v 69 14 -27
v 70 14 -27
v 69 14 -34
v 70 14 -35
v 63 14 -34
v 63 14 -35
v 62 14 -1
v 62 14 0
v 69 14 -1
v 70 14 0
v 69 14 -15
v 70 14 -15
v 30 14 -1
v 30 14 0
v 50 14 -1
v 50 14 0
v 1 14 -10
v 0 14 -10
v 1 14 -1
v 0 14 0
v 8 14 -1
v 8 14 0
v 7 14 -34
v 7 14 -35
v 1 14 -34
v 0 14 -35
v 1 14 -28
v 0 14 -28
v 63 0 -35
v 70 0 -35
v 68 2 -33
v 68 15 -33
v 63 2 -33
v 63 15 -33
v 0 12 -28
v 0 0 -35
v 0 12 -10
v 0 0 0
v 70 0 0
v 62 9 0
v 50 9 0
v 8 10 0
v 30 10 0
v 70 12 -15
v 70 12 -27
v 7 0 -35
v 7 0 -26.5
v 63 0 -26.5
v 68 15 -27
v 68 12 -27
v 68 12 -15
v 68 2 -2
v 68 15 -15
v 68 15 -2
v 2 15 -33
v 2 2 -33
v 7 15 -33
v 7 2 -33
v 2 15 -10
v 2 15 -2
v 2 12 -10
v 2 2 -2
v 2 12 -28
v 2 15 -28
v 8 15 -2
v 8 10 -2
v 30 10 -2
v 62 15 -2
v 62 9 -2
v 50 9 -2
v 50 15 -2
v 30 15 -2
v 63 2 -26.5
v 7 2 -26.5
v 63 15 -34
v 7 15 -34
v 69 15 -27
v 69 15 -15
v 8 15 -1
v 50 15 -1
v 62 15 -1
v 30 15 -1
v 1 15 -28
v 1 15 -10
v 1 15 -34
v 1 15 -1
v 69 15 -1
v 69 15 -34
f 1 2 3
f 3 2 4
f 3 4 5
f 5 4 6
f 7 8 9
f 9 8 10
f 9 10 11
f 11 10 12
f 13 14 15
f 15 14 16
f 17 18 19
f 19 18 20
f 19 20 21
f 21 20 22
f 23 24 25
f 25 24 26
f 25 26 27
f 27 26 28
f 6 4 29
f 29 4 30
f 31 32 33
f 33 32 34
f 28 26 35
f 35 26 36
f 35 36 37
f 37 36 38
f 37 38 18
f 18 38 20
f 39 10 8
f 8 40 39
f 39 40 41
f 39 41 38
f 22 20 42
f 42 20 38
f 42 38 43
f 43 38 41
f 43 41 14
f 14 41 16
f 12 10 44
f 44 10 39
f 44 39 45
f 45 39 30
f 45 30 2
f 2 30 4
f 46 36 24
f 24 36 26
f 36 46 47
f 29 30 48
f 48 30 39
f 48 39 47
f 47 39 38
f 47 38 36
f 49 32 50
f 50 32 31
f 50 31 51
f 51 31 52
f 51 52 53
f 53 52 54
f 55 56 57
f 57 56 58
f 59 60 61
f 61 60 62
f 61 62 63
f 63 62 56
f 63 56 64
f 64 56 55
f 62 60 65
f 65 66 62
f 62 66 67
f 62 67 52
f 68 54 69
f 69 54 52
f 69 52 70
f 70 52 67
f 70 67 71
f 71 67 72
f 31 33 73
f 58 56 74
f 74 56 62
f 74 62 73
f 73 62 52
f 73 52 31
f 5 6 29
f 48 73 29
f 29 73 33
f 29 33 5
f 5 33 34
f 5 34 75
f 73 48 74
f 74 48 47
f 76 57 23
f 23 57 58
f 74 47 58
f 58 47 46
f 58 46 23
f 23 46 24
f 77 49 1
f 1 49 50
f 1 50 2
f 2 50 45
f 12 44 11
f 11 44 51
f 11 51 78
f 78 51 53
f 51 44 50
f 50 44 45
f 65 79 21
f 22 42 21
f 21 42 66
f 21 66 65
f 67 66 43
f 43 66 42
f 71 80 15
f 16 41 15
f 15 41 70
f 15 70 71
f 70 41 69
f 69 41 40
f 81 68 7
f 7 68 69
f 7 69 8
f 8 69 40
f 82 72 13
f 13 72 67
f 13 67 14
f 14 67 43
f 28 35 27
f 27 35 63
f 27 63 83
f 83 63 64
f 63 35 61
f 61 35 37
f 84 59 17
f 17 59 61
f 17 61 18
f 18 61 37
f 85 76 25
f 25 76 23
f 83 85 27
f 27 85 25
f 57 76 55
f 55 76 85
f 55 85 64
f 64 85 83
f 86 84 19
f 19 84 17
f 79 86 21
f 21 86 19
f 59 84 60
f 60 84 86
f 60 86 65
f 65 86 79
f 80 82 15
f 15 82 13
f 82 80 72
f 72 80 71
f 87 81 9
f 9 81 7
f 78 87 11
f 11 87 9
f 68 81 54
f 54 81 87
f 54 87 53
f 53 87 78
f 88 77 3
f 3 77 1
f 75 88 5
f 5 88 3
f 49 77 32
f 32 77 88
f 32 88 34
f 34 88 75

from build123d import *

# Parameters (mm, degrees)
SKETCH1_W               = 70
SKETCH1_H               = 35
BOSS_EXTRUDE1_DEPTH     = 2
SKETCH2_W               = 70
SKETCH2_H               = 35
SKETCH2_W_2             = 66
SKETCH2_H_2             = 31
BOSS_EXTRUDE2_DEPTH     = 12
SKETCH3_W               = 56
SKETCH3_H               = 8.5
CUT_EXTRUDE1_DEPTH      = 17
CUT_EXTRUDE1_DEPTH_BACK = 15
SKETCH4_W               = 12
SKETCH4_H               = 2
CUT_EXTRUDE2_DEPTH      = 17
SKETCH5_W               = 9
SKETCH5_H               = 4
SKETCH5_W_2             = 12
SKETCH5_H_2             = 5
CUT_EXTRUDE3_DEPTH      = 17
SKETCH6_W               = 18
SKETCH6_H               = 2
CUT_EXTRUDE4_DEPTH      = 17
SKETCH7_W               = 4
SKETCH7_H               = 1
SKETCH7_W_2             = 20
BOSS_EXTRUDE4_DEPTH     = 1
SKETCH8_W               = 4
SKETCH8_H               = 5
CUT_EXTRUDE5_DEPTH      = 3


with BuildPart() as part:
    # Sketch1 → Boss-Extrude1 (new body)
    with BuildSketch(Plane(origin=(0, 0, 0), x_dir=(1, 0, 0), z_dir=(0, 1, 0))):
        with Locations((35, 17.5)):
            Rectangle(SKETCH1_W, SKETCH1_H)
    extrude(amount=BOSS_EXTRUDE1_DEPTH)

    # Sketch2 → Boss-Extrude2 (add)
    with BuildSketch(Plane(origin=(0, 2, 0), x_dir=(1, 0, 0), z_dir=(0, 1, 0))):
        with Locations((35, 17.5)):
            Rectangle(SKETCH2_W, SKETCH2_H)
        with Locations((35, 17.5)):
            Rectangle(SKETCH2_W_2, SKETCH2_H_2, mode=Mode.SUBTRACT)
    extrude(amount=BOSS_EXTRUDE2_DEPTH)

    # Sketch3 → Cut-Extrude1 (cut, two sides)
    with BuildSketch(Plane(origin=(0, 2, 0), x_dir=(1, 0, 0), z_dir=(0, 1, 0))) as cut_extrude1_sk:
        with Locations((35, 30.75)):
            Rectangle(SKETCH3_W, SKETCH3_H)
    extrude(amount=CUT_EXTRUDE1_DEPTH, mode=Mode.SUBTRACT)
    extrude(cut_extrude1_sk.sketch, amount=-CUT_EXTRUDE1_DEPTH_BACK, mode=Mode.SUBTRACT)

    # Sketch4 → Cut-Extrude2 (cut)
    with BuildSketch(Plane.ZY.offset(-68)):
        with Locations((-21, 13)):
            Rectangle(SKETCH4_W, SKETCH4_H)
    extrude(amount=-CUT_EXTRUDE2_DEPTH, mode=Mode.SUBTRACT)

    # Sketch5 → Cut-Extrude3 (cut)
    with BuildSketch(Plane(origin=(0, 0, -2), x_dir=(-1, 0, 0), z_dir=(0, 0, -1))):
        with Locations((-12.5, 12)):
            Rectangle(SKETCH5_W, SKETCH5_H)
        with Locations((-25.5, 12)):
            Rectangle(SKETCH5_W, SKETCH5_H)
        with Locations((-56, 11.5)):
            Rectangle(SKETCH5_W_2, SKETCH5_H_2)
    extrude(amount=-CUT_EXTRUDE3_DEPTH, mode=Mode.SUBTRACT)

    # Sketch6 → Cut-Extrude4 (cut)
    with BuildSketch(Plane(origin=(2, 0, 0), x_dir=(0, 0, -1), z_dir=(1, 0, 0))):
        with Locations((19, 13)):
            Rectangle(SKETCH6_W, SKETCH6_H)
    extrude(amount=-CUT_EXTRUDE4_DEPTH, mode=Mode.SUBTRACT)

    # Sketch7 → Boss-Extrude4 (add)
    with BuildSketch(Plane(origin=(0, 14, 0), x_dir=(1, 0, 0), z_dir=(0, 1, 0))):
        Polygon((7, 33), (7, 34), (1, 34), (1, 28), (2, 28), (2, 33), align=None)
        Polygon((2, 10), (1, 10), (1, 1), (8, 1), (8, 2), (2, 2), align=None)
        with Locations((19, 1.5)):
            Rectangle(SKETCH7_W, SKETCH7_H)
        with Locations((40, 1.5)):
            Rectangle(SKETCH7_W_2, SKETCH7_H)
        Polygon((69, 1), (69, 15), (68, 15), (68, 2), (62, 2), (62, 1), align=None)
        Polygon((68, 27), (69, 27), (69, 34), (63, 34), (63, 33), (68, 33), align=None)
    extrude(amount=BOSS_EXTRUDE4_DEPTH)

    # Sketch8 → Cut-Extrude5 (cut)
    with BuildSketch(Plane(origin=(0, 0, -2), x_dir=(-1, 0, 0), z_dir=(0, 0, -1))):
        with Locations((-19, 12.5)):
            Rectangle(SKETCH8_W, SKETCH8_H)
    extrude(amount=-CUT_EXTRUDE5_DEPTH, mode=Mode.SUBTRACT)


solid = part.part
